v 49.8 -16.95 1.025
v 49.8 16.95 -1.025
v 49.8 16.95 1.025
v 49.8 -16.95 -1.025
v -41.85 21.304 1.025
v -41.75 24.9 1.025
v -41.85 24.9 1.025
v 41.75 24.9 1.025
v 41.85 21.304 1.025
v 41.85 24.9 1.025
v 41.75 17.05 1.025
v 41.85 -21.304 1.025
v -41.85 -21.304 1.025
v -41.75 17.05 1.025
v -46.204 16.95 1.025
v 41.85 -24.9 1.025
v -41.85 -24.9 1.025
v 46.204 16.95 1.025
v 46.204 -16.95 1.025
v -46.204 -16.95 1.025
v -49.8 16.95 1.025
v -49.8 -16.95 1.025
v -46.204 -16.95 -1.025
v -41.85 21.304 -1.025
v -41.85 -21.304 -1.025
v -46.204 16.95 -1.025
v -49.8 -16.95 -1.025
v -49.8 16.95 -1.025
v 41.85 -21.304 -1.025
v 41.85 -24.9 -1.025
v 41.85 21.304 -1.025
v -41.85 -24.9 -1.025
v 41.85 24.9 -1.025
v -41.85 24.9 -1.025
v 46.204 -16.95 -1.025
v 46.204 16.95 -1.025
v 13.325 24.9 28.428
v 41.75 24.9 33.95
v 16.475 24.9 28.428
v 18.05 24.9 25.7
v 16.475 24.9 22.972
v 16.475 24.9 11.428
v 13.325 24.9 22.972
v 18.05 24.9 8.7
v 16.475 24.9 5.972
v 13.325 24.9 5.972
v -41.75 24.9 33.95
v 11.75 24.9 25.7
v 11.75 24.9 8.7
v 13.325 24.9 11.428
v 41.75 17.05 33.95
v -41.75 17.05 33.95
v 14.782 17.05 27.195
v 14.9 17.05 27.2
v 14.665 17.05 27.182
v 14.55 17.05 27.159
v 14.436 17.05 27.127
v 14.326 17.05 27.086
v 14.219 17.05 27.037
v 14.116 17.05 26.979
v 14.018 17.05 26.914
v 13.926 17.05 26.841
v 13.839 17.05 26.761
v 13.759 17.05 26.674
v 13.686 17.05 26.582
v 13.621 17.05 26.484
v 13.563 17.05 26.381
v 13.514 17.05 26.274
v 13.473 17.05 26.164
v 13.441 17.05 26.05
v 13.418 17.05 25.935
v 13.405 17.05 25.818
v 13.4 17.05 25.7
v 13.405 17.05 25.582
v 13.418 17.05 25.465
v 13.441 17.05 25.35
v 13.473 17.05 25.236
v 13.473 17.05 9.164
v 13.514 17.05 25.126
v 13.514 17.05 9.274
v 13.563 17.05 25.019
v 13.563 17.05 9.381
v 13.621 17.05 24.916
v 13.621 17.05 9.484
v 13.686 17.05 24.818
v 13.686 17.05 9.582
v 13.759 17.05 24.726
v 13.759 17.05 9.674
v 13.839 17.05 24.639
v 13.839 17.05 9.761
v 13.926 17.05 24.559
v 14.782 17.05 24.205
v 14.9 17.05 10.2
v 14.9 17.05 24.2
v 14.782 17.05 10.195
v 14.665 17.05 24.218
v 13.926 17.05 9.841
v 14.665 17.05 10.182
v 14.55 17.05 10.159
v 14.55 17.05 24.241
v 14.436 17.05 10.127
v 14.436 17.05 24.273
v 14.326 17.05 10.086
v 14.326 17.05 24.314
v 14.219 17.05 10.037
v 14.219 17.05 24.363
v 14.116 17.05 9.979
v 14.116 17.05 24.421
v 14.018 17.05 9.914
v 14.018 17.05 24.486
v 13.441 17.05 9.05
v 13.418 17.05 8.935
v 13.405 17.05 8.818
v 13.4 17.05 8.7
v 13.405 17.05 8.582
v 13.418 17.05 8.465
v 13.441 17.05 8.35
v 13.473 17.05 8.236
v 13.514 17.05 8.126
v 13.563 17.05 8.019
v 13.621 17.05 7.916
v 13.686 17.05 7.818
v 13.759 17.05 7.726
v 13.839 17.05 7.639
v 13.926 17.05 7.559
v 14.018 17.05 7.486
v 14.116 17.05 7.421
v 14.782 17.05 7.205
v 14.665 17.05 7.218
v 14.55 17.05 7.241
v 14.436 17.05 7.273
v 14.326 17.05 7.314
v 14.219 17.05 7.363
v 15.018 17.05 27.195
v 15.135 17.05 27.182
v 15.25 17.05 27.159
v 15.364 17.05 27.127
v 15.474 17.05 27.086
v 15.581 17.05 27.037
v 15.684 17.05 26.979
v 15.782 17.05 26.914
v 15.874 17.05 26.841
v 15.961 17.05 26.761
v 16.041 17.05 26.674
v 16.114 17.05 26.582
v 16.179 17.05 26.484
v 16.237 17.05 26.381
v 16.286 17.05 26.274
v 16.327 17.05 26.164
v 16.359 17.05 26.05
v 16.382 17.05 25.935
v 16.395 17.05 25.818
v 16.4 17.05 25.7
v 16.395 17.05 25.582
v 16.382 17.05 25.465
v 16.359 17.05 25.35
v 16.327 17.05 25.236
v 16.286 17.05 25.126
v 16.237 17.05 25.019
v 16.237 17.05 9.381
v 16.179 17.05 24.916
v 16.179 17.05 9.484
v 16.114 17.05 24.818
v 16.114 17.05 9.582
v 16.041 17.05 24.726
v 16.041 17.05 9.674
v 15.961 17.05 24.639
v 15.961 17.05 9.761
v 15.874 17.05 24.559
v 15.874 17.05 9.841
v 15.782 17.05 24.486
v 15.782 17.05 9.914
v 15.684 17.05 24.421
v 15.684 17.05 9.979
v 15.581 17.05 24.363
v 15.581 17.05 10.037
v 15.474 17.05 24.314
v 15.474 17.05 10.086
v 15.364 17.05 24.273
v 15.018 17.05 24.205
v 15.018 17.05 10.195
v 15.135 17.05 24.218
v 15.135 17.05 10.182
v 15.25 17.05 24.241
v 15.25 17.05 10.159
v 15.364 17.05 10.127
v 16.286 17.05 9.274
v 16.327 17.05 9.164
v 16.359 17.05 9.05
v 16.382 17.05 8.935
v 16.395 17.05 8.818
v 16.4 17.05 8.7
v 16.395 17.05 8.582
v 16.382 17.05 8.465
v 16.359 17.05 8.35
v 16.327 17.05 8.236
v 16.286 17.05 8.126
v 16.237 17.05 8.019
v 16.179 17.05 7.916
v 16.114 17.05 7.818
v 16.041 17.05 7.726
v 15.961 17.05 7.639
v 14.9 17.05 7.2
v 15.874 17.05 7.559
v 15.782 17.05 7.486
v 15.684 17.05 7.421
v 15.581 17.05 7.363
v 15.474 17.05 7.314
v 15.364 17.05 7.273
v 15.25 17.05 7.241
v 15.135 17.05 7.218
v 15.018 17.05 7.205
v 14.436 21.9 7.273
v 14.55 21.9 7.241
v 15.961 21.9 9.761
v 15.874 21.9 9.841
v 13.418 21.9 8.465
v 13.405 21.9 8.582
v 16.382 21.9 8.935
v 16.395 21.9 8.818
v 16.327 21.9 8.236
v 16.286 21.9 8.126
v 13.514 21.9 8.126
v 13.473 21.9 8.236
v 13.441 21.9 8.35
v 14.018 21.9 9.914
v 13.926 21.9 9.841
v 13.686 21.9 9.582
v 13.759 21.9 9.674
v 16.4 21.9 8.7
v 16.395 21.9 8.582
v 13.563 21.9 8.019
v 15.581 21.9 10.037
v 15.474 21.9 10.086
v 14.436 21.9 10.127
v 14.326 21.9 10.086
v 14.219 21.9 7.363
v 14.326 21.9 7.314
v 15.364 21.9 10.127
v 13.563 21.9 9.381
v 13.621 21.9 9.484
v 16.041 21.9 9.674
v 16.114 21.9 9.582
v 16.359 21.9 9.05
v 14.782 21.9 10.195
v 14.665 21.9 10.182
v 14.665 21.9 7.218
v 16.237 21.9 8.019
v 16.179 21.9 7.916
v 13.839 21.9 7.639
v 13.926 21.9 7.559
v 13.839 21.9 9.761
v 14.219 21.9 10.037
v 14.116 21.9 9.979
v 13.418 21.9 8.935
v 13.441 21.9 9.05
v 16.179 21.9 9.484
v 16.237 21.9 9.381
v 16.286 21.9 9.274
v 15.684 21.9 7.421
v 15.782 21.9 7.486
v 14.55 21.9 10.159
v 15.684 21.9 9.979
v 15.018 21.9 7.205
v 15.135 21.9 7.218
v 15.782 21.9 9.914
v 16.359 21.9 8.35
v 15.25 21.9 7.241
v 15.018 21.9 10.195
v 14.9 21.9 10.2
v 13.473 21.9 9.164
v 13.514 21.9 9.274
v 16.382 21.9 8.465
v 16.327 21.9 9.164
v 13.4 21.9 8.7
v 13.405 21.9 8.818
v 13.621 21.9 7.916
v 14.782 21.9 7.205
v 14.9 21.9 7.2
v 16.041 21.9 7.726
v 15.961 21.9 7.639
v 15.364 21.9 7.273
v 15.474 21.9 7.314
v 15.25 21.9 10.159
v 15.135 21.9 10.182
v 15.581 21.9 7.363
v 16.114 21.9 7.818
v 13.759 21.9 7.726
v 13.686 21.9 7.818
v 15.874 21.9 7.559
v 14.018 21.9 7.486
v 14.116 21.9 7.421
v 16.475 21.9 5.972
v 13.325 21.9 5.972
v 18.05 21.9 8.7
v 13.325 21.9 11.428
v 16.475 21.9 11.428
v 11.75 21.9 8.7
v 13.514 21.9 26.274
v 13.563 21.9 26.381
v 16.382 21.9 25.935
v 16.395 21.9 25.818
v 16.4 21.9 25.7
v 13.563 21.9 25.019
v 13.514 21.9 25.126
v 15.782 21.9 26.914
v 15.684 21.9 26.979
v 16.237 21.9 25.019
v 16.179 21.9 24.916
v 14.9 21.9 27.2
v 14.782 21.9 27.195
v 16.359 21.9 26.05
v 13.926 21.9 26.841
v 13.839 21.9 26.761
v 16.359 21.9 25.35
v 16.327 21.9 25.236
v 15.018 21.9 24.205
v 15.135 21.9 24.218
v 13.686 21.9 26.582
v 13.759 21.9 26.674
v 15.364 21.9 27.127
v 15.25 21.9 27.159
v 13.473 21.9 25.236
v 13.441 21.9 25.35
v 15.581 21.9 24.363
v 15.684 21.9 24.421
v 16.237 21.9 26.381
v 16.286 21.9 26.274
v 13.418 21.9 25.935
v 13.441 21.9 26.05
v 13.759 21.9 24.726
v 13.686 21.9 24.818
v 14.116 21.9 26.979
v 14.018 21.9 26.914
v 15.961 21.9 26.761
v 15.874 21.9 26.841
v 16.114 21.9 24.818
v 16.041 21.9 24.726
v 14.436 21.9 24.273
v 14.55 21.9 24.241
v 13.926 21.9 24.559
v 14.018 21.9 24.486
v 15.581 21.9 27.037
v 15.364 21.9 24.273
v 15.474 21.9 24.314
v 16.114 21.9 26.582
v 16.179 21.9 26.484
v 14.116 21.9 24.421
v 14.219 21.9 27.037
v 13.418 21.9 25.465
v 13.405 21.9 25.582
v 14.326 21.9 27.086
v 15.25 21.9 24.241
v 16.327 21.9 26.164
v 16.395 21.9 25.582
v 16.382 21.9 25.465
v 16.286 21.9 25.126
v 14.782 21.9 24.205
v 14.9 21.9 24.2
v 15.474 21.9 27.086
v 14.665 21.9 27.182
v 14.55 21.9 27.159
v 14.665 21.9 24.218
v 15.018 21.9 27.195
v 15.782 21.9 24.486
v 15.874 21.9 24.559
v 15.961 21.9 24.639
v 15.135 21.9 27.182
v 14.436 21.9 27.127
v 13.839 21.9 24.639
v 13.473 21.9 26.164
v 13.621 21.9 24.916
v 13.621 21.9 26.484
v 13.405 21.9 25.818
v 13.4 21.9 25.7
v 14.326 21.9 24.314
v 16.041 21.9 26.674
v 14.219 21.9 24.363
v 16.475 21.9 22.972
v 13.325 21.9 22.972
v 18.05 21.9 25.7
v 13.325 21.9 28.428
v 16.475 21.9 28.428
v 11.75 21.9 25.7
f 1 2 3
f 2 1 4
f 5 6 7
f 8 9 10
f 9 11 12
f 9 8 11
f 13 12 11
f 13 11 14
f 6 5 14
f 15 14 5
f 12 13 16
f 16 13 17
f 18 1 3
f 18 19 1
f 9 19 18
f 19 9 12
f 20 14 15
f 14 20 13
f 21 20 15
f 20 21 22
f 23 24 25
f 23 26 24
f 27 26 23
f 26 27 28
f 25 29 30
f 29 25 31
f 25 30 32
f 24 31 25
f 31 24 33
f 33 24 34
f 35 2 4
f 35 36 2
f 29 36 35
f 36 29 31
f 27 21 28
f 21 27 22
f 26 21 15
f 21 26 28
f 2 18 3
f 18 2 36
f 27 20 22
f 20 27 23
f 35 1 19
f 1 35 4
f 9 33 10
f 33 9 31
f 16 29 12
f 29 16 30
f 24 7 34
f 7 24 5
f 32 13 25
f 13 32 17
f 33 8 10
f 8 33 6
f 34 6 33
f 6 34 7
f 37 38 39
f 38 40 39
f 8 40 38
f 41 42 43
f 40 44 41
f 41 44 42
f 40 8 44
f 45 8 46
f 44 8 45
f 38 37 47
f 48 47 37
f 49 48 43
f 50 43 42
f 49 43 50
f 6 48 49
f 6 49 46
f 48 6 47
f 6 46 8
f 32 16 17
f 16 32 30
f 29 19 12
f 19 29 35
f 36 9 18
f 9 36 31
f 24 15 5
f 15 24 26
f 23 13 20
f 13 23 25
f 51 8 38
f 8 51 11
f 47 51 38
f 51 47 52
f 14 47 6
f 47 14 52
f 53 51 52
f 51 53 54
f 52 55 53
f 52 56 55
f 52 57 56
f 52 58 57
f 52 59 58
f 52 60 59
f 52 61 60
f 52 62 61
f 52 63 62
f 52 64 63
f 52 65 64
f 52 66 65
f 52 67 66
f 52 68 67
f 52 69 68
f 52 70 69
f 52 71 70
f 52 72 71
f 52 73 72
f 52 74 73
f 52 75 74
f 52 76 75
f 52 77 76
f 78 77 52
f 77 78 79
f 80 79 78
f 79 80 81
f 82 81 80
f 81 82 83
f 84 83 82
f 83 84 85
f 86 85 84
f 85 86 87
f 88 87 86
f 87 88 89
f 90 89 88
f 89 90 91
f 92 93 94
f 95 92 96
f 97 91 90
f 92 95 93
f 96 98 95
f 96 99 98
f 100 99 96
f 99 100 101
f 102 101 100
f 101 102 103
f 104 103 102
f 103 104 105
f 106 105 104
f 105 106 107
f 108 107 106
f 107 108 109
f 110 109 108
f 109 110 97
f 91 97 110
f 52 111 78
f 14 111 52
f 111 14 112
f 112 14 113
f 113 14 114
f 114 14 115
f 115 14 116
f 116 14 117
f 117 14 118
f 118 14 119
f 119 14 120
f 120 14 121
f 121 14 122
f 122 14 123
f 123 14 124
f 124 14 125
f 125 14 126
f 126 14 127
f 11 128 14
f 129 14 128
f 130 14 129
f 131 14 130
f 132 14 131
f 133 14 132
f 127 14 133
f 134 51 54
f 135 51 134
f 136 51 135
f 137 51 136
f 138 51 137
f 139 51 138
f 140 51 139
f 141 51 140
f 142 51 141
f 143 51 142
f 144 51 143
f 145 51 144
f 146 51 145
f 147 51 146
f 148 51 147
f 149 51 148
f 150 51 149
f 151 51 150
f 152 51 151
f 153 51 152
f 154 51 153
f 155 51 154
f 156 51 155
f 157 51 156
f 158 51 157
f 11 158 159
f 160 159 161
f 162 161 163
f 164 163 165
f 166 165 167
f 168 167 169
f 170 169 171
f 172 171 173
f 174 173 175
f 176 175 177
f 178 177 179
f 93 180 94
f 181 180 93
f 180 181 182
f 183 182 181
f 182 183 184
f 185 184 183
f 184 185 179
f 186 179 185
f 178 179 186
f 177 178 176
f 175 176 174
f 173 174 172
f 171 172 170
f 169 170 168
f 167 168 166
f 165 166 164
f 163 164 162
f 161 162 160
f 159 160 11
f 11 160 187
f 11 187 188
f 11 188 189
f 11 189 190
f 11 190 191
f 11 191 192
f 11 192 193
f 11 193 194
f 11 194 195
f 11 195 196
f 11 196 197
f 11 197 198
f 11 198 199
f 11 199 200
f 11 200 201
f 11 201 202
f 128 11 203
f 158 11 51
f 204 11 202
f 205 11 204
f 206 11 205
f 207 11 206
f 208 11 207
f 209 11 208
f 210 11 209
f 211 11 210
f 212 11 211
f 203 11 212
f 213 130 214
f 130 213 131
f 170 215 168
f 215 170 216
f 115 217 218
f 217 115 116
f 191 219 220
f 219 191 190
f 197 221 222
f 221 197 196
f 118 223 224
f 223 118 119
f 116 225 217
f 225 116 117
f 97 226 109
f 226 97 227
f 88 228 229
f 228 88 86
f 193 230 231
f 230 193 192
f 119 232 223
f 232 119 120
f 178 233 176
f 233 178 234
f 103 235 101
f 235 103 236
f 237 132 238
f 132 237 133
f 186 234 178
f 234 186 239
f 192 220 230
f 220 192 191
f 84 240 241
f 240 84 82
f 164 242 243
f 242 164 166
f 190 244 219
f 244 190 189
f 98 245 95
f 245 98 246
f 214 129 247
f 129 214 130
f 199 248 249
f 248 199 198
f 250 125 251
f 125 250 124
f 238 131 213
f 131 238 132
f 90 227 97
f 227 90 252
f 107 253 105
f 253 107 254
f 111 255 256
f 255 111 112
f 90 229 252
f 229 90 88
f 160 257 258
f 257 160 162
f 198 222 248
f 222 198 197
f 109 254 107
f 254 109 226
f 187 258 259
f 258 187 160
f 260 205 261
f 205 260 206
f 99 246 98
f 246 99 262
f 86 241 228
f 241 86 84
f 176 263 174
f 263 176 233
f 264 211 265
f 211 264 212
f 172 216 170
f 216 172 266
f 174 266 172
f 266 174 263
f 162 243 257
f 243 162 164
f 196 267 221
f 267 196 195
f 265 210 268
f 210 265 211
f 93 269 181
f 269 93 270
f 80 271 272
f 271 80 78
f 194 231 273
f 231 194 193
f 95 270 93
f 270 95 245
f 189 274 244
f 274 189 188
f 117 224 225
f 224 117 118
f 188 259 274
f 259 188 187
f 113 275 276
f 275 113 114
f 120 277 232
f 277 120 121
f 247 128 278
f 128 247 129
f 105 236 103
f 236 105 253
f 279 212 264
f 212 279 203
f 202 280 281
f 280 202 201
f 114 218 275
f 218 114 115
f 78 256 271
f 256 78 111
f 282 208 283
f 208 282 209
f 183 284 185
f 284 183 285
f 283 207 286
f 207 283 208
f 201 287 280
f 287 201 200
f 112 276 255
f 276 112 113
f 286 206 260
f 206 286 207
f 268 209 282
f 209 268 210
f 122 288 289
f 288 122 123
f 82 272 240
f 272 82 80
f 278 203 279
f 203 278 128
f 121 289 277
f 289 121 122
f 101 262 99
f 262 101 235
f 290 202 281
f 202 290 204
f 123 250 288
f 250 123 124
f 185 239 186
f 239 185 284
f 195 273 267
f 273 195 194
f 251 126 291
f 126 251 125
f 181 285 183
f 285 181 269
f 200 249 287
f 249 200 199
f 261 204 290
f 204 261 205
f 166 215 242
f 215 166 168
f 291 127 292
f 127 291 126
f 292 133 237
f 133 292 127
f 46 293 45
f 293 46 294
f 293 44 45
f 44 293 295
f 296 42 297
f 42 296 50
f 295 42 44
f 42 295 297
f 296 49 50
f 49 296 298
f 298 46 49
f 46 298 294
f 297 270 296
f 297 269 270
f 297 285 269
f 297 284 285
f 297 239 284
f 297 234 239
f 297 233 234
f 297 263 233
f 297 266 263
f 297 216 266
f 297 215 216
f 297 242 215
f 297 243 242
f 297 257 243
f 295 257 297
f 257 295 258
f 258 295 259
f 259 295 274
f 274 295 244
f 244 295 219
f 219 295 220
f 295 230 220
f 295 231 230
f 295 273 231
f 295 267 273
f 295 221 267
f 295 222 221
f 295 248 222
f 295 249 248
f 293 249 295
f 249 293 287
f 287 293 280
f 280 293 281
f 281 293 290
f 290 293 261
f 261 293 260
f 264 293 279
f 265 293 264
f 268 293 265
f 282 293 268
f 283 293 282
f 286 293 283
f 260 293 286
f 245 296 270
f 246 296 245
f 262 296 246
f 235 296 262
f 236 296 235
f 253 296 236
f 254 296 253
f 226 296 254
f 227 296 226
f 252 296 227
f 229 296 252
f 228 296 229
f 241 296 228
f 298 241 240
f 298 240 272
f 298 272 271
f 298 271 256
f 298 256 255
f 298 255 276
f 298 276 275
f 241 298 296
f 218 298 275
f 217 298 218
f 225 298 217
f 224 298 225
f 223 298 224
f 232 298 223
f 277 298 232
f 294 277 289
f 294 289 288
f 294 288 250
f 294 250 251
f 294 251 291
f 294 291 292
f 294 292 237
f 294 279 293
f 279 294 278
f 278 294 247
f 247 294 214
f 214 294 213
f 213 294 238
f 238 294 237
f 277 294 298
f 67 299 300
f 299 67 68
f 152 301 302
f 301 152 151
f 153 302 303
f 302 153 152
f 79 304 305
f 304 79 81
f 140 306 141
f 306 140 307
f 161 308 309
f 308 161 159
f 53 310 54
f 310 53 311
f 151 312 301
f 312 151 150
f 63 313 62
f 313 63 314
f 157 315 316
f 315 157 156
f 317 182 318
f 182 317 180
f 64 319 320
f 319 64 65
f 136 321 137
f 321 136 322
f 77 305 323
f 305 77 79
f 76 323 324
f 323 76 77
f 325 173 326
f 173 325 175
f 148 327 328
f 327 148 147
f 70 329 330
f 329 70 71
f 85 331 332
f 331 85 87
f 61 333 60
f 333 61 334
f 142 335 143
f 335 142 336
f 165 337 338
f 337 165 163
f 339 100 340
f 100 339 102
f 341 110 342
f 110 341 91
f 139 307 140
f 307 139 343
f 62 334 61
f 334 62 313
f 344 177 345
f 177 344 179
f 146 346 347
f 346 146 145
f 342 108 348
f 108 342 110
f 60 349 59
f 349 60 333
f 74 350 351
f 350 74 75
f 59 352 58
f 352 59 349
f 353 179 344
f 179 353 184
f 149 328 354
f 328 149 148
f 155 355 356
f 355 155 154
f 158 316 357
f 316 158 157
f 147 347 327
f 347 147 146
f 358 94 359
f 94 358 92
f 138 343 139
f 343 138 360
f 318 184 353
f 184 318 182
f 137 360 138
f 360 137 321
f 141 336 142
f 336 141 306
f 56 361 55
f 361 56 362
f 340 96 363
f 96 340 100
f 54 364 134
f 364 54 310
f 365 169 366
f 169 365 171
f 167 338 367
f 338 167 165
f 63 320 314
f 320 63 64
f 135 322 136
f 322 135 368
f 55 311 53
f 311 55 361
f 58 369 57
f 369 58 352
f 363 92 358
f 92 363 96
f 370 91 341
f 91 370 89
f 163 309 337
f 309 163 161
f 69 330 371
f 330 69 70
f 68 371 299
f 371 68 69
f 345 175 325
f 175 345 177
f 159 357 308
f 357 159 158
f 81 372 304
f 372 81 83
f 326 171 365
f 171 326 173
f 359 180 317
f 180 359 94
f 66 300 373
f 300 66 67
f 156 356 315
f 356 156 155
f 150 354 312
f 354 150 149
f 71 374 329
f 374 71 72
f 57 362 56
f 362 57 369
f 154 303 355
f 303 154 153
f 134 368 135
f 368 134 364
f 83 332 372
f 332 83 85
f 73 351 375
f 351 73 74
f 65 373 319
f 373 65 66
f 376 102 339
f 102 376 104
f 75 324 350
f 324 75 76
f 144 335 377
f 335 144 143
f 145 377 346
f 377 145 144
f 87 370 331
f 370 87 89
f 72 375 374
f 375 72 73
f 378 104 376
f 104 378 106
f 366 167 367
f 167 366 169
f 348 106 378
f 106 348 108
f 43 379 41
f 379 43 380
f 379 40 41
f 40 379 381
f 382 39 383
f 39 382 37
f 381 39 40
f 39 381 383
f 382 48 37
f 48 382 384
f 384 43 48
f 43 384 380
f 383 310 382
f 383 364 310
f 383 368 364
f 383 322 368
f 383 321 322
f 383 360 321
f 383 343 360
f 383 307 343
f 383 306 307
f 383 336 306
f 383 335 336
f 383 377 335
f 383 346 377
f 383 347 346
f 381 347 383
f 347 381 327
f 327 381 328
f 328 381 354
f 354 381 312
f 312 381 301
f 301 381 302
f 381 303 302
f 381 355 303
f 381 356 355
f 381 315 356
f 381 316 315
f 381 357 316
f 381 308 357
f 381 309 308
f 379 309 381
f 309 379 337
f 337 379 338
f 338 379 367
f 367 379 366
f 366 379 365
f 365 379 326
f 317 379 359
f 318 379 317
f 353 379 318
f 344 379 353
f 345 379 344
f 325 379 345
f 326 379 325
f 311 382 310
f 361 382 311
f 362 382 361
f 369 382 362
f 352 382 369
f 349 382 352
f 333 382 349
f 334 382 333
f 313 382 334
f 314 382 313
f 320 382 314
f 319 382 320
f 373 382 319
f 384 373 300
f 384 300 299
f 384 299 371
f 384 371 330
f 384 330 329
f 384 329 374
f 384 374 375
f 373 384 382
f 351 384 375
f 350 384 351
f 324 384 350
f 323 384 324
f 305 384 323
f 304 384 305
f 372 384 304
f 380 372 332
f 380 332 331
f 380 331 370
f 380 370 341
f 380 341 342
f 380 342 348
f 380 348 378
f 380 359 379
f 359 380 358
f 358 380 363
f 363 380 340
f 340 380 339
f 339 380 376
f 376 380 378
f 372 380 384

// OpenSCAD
//Cube insert: Perpendicular 

stage_w = 30;
stage_l = 96.9;
stage_box_h = 35;
stage_h = 28.5;

cube_win_side = 34.1;
cube_side = 49.8;
wall_th = (cube_side - cube_win_side)/2;

/* [Hiden] */
$fn = 80;
eps = .002;
a = 49.8;
b = 33.6;
c = 6.28;
d = 53.8;
h = cube_win_side/2-stage_w/2;
FDM_offset = 0.15;

scr_d = 2.8; // Screw hole diameter (M3)

mount_x = 92.17 - 3.36;
mount_y = 35.85 - 6.3;

module DoubleInsert() {
    union() {   //basic insert design
            cube([2*a,b+2*FDM_offset,h], center=true);
            cube([2*b+2*FDM_offset+(a-b),a,h], center=true);
        
            translate([(2*a)/4,0,0])
            rotate(a=[0,0,45])
                cube([c,d+2*FDM_offset,h], center=true);
        
            translate([(2*a)/4,0,0])
            rotate(a=[0,0,-45])
                cube([c,d+2*FDM_offset,h], center=true);
        
            translate([-(2*a)/4,0,0])
            rotate(a=[0,0,45])
                cube([c,d+2*FDM_offset,h], center=true);
        
            translate([-(2*a)/4,0,0])
            rotate(a=[0,0,-45])
                cube([c,d+2*FDM_offset,h], center=true);
        }
}

module LaserInsert() {
    difference() {
        // insert base
        union() {
            DoubleInsert();
            translate([0,cube_side/2-wall_th/2,cube_win_side/2])
                cube([83.8-2*FDM_offset,wall_th,cube_win_side-2*FDM_offset], center=true);
        }
        
        // front mounting holes
        rotate([90,0,0])
        translate([83.8/2-6-21,6.5+h+FDM_offset,0])
            cylinder(d = 3,h = 50, center = true);
        rotate([90,0,0])
        translate([83.8/2-6-21,6.5+h+FDM_offset,-cube_side/2-10+3])
            cylinder(d = 6+2*FDM_offset,h = 20, center = true, $fn=6);
        
        rotate([90,0,0])
        translate([83.8/2-6-21,(stage_w-6.5)+h+FDM_offset,0])
            cylinder(d = 3,h = 50, center = true);
        rotate([90,0,0])
        translate([83.8/2-6-21,(stage_w-6.5)+h+FDM_offset,-cube_side/2-10+3])
            cylinder(d = 6+2*FDM_offset,h = 20, center = true, $fn=6);
    }
}


LaserInsert();
